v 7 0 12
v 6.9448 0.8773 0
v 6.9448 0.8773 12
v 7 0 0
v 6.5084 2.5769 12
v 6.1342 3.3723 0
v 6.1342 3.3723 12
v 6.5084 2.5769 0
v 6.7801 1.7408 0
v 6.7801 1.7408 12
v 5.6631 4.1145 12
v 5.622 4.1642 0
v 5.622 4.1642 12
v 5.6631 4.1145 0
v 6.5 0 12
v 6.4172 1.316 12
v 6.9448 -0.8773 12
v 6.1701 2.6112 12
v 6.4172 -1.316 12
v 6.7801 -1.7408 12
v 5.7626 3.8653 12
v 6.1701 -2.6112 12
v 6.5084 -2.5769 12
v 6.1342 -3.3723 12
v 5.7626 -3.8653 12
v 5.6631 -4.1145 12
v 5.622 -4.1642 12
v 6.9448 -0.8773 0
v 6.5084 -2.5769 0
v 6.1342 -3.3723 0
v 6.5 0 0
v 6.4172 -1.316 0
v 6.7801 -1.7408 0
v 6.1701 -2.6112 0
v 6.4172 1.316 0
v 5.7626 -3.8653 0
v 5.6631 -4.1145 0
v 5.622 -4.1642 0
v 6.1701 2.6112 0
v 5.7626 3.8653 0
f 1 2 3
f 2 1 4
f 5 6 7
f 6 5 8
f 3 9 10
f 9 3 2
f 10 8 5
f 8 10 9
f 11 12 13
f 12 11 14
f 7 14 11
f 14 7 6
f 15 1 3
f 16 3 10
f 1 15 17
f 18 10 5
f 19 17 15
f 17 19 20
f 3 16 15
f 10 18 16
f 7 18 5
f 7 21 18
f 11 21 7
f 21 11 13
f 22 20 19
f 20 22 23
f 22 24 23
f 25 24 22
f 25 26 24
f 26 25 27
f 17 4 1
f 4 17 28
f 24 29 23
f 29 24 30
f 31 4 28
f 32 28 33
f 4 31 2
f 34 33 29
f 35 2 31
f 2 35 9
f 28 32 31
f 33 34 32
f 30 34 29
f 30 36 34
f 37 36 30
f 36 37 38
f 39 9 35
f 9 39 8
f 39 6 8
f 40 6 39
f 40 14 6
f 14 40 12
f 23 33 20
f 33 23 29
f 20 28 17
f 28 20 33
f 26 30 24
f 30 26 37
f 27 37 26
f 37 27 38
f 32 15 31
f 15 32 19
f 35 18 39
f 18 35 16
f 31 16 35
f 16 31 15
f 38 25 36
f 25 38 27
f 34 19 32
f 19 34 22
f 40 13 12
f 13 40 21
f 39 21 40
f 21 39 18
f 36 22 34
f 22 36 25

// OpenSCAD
$fn = 50;


difference() {
	union() {
		cylinder(h = 12, r = 7.0000000000);
		translate(v = [-7.0000000000, 0, 0]) {
			cylinder(h = 12, r = 7.0000000000);
		}
	}
	union() {
		cylinder(h = 12, r = 3.2500000000);
		cylinder(h = 12, r = 1.8000000000);
		cylinder(h = 12, r = 1.8000000000);
		cylinder(h = 12, r = 1.8000000000);
		translate(v = [-11.5000000000, 0, 0]) {
			hull() {
				translate(v = [-3.7500000000, 0.0000000000, 0]) {
					cylinder(h = 12, r = 7.5000000000);
				}
				translate(v = [3.7500000000, 0.0000000000, 0]) {
					cylinder(h = 12, r = 7.5000000000);
				}
				translate(v = [-3.7500000000, -0.0000000000, 0]) {
					cylinder(h = 12, r = 7.5000000000);
				}
				translate(v = [3.7500000000, -0.0000000000, 0]) {
					cylinder(h = 12, r = 7.5000000000);
				}
			}
		}
		translate(v = [-4.0000000000, 0, 0.0000000000]) {
			cylinder(h = 12, r = 10.5000000000);
		}
	}
}
